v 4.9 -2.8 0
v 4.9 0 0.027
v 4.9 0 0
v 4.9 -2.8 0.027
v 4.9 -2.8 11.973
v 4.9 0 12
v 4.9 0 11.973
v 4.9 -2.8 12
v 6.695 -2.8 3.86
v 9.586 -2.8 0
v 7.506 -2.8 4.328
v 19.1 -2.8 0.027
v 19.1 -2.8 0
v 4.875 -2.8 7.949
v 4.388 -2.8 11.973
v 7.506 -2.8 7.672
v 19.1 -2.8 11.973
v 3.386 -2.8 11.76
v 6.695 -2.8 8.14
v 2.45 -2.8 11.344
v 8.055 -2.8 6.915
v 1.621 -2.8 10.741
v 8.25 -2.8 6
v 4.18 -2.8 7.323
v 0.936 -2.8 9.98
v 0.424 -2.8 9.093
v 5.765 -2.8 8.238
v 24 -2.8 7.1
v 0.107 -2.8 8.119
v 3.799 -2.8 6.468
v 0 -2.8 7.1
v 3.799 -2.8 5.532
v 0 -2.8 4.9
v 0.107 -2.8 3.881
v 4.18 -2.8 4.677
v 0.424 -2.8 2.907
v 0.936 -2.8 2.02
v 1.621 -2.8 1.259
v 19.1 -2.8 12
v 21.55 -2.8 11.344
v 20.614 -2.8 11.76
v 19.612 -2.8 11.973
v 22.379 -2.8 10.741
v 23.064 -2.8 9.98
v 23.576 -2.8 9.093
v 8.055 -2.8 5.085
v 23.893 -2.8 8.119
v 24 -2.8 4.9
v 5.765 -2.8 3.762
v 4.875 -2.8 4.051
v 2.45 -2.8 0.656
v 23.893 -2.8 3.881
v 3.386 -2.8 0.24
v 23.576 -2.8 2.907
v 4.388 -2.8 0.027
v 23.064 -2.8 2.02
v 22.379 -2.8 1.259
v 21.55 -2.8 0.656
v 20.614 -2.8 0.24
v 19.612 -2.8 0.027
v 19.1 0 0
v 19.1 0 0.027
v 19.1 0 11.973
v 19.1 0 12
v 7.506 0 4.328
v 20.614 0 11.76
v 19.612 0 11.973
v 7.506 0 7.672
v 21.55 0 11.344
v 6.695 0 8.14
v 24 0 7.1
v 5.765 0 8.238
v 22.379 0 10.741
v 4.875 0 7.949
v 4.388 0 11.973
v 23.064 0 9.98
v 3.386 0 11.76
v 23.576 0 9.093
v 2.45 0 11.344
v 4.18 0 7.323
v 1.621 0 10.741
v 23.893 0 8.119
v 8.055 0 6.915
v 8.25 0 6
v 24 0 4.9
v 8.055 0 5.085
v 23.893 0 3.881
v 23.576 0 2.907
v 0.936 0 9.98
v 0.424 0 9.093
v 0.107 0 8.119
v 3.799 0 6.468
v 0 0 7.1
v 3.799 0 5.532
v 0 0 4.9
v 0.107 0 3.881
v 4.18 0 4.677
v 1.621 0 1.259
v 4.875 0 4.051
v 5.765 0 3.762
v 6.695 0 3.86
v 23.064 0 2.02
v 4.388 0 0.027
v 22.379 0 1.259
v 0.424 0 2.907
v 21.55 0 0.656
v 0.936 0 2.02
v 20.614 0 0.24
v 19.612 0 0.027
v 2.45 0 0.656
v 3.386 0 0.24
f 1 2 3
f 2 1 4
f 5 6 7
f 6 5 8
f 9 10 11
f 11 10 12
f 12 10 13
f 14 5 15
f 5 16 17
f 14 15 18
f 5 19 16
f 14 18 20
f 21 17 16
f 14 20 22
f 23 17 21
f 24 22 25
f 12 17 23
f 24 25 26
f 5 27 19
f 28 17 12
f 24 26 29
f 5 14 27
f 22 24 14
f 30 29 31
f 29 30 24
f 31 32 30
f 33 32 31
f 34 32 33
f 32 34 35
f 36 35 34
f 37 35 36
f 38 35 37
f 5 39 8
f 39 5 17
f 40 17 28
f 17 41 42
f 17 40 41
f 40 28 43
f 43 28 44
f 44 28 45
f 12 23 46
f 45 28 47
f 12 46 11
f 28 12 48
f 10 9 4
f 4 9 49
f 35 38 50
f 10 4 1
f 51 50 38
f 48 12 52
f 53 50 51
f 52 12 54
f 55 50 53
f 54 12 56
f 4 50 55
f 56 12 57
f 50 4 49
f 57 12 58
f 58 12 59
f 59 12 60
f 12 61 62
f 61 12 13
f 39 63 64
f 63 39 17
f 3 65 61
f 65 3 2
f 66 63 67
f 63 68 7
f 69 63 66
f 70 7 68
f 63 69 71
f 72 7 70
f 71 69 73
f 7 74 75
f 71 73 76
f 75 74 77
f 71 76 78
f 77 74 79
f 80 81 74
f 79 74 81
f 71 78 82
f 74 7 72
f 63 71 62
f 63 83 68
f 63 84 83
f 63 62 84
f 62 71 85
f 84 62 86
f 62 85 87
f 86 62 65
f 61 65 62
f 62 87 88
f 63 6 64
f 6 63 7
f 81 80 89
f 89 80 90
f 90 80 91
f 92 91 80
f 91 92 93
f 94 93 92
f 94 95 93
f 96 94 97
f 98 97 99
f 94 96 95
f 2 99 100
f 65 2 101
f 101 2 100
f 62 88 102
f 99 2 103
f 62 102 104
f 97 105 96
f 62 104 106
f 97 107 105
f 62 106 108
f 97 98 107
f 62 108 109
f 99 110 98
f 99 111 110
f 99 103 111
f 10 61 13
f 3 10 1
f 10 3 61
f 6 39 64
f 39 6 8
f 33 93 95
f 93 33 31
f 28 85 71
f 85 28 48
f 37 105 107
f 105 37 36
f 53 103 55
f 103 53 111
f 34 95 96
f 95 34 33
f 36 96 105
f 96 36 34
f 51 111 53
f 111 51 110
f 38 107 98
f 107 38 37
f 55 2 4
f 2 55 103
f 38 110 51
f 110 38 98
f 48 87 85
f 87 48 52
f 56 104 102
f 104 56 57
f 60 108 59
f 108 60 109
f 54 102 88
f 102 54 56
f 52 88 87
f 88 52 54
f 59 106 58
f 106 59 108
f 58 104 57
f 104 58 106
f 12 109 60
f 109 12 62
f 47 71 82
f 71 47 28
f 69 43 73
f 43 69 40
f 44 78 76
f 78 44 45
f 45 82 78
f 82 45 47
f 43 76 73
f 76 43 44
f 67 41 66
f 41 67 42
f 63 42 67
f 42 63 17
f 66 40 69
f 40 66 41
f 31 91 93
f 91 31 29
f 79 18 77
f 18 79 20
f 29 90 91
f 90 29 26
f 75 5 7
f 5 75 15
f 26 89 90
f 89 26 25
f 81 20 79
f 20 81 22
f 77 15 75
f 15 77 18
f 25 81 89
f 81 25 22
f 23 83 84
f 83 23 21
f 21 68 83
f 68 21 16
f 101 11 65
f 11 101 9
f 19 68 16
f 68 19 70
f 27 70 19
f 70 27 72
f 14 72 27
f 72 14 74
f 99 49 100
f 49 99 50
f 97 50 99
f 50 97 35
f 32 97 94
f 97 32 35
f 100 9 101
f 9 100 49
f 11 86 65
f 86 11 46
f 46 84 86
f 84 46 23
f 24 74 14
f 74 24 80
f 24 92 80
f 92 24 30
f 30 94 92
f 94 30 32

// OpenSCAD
// file: parameters.scad
// Parameters shared between modules
Base_th = 2.8;
Beam_width = 15;
Wiggle = 0.25;
Fat_beam_width = Beam_width + Wiggle;
Beam_length = 400;
Wall_th = 2.5;
Min_beam_width = 12.5;
Max_beam_width = 17.5;
Zip_th = 2;
Zip_h = Zip_th + Max_beam_width - Min_beam_width;
Zip_w = 5.0;
Nema17_cube_width          = 42.43;
Nema17_screw_hole_width    = 43.74; // Opposite corner screws
Nema17_ring_diameter       = 22;
Nema17_cube_height         = 39.36;
Nema17_shaft_height        = 63.65;
Nema17_ring_height         = 2;
Nema17_shaft_radius        = 5/2;
Nema23_cube_width          = 56;
Nema23_screw_hole_width    = 66.61;
Nema23_ring_diameter       = 38;
Nema23_cube_height         = 56;
Nema23_shaft_radius        = 3.175;

b608_outer_dia = 22.2;
b608_width = 7.05;
Gap_between_sandwich_and_plate = 1.5 + Base_th; // 1.5 mm for wiggle
Motor_bracket_flerp_r = 6;
Motor_bracket_flerp = 14;
Motor_bracket_cw = Nema17_cube_width + 6;
Motor_bracket_att_ang = 50;
Mounting_screw_d = 4.5;
Mounting_screw_head_d = 14;
Spool_outer_wall_th = 4;

// Corner clamp parameters
Cc_l1 = (Fat_beam_width+2*Wall_th)*2*sqrt(3);
Cc_rad_b = 4;
Cc_action_point_from_mid = Cc_l1/sqrt(3)-2*Cc_rad_b-1.3;  // 1.3 chosen arbitrarily
Cc_plastic_length = sqrt(Cc_action_point_from_mid*Cc_action_point_from_mid
                       - (Cc_action_point_from_mid/2)*(Cc_action_point_from_mid/2));

// The distance between the two action points on the mover
Sidelength = Beam_length + 2*Cc_plastic_length;

/////// Layout parameters ////////////
Ext_sidelength = Sidelength+77;
Additional_added_plate_side_length = 10;
Yshift_top_plate = -25;

/////// Gear parameters ////////////
Circular_pitch = 262;
Motor_teeth = 10;
Gear_height = 21.4-3;
Motor_pitch                      = (Motor_teeth*Circular_pitch/360);
Motor_pitch_diametrial           = Motor_teeth/(2*Motor_pitch);
Motor_outer_radius               = Motor_pitch + 1/Motor_pitch_diametrial;
Spool_teeth = 100;
Spool_r = 55;
Spool_height = 8;
Spool_pitch                      = (Spool_teeth*Circular_pitch/360);
Spool_pitch_diametrial           = Spool_teeth/(2*Spool_pitch);
Spool_outer_radius               = Spool_pitch + 1/Spool_pitch_diametrial;
Torx_depth = 5;
Motor_bracket_depth = Gear_height+1+7+Nema17_ring_height+1+Gap_between_sandwich_and_plate;
Spool_core_flerp0 = 16+3;

/////// Lineroller parameters ////////////
b623_width  = 4;
b623_bore_r = 3/2;
b623_vgroove_big_r = 12/2;
b623_vgroove_small_r = 10/2;
Lineroller_wall_th = 2.3;
// The height that lineroller_ABC_winch will have if we include the bearing
Tower_h = Gap_between_sandwich_and_plate+Gear_height
         + Spool_height/2
         + b623_vgroove_small_r
         + b623_vgroove_big_r;
Bearing_wall = 1;
Depth_of_lineroller_tower = b623_width + 2*Wall_th; // 9
Depth_of_lineroller_base = Depth_of_lineroller_tower + 9; // 18
Ptfe_r = 2.1;
Lineroller_base_r = Depth_of_lineroller_base/2-1*(Ptfe_r+2);
Screw_h = 2;
Screw_head_h = 2;
Spool_center_bearing_wall_th = 5;
// main file
include <parameters.scad>
use <util.scad>

bit_width = 12;
bit_len = 24;

module wing() {
  difference() {
   rotate([90,0,0])
      rounded_cube2([bit_len,bit_width,Base_th], Lineroller_base_r);
   screw();
  }


}

module screw() {
  translate([bit_width/2, 0, bit_width/2])
    rotate([90,0,0])
    translate([0,0,-1])
    cylinder(d=Mounting_screw_d, h=Base_th+2, $fs=1);
  translate([bit_width/2, 0, bit_width/2])
    rotate([90,0,0])
    translate([0,0,Base_th])
    cylinder(d2=Mounting_screw_head_d-4, d1=Mounting_screw_head_d, h=12, $fs=1);
}

wing();
